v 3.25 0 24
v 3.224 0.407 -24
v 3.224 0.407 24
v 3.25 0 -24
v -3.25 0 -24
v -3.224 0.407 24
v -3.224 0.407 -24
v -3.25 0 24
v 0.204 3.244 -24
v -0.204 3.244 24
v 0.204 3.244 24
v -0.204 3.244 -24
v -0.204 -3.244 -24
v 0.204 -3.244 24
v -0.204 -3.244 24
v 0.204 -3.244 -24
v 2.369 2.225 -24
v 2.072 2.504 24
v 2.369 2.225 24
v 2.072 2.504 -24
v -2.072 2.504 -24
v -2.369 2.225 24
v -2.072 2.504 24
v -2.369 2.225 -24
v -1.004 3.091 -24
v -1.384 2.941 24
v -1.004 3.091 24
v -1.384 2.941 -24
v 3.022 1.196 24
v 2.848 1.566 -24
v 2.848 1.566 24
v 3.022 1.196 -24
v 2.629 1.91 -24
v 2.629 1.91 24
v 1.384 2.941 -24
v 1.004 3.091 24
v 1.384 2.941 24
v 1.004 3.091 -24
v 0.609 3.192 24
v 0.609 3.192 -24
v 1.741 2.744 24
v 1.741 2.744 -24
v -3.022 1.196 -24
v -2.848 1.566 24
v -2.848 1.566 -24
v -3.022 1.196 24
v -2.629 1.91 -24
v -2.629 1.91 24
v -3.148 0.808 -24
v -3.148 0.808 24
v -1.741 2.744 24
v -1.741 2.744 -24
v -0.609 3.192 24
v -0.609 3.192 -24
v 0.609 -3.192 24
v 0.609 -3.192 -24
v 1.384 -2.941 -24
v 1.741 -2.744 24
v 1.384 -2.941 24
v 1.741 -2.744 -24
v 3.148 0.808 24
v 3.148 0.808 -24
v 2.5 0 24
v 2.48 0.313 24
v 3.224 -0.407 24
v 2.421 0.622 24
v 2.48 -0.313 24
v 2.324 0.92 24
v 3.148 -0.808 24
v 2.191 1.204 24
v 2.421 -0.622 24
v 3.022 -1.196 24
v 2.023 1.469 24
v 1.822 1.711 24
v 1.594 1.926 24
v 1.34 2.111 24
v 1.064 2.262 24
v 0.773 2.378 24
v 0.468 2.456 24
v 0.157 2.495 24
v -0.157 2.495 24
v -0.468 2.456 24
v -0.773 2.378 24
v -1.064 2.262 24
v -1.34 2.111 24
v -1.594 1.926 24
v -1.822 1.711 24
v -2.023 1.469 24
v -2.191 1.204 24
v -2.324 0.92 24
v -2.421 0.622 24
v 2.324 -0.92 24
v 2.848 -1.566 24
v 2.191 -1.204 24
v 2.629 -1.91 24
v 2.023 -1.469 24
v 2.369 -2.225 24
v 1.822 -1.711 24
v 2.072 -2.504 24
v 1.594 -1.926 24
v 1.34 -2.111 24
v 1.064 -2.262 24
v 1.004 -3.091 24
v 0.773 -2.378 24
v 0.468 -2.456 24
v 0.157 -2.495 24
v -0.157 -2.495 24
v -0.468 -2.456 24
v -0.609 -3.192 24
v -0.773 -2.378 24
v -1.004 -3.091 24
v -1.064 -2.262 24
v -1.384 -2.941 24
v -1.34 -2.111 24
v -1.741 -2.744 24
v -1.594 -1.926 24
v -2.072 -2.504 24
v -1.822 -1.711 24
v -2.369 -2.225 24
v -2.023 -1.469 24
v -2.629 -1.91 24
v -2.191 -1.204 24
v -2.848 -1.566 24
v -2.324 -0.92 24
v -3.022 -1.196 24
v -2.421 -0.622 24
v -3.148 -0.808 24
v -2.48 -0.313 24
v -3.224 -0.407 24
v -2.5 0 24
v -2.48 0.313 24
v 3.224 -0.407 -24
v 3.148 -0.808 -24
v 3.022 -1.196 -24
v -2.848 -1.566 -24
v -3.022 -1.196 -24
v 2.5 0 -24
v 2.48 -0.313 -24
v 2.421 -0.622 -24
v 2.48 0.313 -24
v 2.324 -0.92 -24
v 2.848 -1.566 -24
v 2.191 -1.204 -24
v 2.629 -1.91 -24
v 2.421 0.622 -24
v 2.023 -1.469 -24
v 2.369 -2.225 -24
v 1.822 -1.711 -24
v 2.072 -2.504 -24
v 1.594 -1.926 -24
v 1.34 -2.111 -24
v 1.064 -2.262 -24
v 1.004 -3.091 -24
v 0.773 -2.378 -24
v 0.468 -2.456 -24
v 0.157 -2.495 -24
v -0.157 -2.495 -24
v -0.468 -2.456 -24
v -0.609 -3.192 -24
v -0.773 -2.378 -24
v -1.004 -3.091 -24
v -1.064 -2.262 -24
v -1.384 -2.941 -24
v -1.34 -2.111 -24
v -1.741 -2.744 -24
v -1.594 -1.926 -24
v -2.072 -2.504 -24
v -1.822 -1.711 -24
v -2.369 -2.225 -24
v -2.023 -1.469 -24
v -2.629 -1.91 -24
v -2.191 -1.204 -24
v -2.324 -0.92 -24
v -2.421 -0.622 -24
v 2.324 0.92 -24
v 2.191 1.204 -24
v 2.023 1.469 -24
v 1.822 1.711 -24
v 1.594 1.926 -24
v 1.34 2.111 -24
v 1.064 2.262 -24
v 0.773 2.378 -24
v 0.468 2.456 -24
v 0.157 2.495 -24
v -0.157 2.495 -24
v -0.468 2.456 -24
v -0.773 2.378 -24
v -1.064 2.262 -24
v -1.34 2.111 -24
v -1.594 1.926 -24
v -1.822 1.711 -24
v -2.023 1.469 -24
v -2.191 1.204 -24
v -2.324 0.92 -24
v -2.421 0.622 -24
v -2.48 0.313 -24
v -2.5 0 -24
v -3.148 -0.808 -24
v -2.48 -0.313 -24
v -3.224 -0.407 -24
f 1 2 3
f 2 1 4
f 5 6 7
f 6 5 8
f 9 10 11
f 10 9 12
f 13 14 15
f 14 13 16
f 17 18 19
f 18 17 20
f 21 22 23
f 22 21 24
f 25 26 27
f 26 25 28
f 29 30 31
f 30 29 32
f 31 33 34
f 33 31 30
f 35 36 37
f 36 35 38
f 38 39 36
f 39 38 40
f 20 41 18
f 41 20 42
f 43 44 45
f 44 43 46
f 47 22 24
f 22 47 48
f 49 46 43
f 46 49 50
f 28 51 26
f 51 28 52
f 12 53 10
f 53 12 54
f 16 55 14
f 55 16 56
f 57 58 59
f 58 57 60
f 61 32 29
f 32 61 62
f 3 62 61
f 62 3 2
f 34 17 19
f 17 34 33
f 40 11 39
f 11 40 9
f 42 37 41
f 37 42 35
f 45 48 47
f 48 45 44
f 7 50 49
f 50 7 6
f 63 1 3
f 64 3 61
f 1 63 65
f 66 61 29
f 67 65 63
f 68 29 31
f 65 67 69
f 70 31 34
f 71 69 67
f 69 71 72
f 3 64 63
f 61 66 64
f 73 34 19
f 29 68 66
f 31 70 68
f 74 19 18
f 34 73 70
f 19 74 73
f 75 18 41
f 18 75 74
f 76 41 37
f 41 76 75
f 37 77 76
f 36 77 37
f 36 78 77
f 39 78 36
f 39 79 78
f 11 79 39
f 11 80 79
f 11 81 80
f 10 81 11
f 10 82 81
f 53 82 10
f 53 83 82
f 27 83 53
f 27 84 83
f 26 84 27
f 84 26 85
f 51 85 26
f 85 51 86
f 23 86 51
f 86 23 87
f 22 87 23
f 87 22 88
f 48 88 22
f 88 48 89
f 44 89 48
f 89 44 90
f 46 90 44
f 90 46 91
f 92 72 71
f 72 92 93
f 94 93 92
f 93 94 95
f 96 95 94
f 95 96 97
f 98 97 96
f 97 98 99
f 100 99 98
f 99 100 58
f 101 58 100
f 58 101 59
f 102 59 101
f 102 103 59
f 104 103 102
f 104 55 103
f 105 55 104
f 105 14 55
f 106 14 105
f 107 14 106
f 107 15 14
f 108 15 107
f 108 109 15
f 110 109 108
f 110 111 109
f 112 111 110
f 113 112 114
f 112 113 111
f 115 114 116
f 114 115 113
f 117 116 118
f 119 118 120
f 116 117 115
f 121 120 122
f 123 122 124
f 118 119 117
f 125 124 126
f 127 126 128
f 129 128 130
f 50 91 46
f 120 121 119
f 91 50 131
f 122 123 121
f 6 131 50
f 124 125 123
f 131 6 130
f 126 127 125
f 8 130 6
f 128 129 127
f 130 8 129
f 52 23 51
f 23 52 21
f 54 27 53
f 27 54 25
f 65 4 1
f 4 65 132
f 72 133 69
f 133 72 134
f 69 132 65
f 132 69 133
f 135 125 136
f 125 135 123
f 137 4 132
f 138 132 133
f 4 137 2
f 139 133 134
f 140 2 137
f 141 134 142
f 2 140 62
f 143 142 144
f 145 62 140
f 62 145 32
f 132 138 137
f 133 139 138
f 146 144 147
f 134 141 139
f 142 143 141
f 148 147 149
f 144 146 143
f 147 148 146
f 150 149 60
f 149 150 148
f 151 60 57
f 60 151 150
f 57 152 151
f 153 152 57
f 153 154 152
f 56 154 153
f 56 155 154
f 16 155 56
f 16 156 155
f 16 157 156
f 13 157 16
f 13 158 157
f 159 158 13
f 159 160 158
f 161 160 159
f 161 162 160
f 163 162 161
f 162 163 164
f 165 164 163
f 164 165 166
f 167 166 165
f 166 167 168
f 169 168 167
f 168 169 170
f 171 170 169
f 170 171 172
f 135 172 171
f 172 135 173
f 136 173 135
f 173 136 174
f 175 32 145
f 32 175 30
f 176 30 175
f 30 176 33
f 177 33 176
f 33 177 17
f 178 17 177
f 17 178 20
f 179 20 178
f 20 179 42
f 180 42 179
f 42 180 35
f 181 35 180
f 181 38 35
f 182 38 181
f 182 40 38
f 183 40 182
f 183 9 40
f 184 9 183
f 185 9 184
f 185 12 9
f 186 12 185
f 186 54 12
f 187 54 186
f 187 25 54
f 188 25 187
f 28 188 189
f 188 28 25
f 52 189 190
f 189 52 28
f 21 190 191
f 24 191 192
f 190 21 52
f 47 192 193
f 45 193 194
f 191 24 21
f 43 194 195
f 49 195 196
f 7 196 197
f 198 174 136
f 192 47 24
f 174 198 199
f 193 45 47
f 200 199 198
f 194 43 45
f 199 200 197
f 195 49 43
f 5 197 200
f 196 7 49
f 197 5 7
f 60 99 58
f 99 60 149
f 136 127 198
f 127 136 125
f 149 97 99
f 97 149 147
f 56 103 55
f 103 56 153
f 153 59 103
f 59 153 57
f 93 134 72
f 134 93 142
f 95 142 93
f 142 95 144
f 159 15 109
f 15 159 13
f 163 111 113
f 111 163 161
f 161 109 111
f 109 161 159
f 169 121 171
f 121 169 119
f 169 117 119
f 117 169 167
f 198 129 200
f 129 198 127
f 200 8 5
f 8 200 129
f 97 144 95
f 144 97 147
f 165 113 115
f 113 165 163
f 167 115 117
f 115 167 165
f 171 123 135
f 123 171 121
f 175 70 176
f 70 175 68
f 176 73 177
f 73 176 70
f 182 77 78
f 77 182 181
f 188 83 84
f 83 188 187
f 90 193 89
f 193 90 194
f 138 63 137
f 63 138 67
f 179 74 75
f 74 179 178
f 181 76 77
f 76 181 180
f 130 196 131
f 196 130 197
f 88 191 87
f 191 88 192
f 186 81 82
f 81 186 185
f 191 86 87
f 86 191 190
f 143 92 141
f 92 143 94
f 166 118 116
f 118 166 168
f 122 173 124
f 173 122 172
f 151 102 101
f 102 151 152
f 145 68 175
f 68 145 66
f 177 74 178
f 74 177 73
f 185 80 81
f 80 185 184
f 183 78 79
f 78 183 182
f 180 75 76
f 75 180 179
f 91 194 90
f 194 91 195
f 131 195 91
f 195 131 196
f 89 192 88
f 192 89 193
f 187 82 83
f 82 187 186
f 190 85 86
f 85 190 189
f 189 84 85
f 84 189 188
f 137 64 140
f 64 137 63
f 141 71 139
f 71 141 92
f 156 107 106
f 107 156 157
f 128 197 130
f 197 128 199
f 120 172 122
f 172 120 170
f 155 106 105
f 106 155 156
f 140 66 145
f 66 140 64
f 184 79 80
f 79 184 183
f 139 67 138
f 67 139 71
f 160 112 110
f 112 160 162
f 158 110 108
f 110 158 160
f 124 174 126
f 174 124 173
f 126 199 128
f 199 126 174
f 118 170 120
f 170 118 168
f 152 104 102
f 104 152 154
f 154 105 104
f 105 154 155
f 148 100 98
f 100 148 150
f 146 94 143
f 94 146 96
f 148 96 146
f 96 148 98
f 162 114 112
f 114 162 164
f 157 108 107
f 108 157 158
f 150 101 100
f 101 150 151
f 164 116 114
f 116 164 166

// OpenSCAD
$fn = 50;


difference() {
	union() {
		translate(v = [0, 0, -24.0000000000]) {
			cylinder(h = 48, r = 3.2500000000);
		}
	}
	union() {
		translate(v = [0, 0, -100.0000000000]) {
			cylinder(h = 200, r = 2.5000000000);
		}
	}
}
